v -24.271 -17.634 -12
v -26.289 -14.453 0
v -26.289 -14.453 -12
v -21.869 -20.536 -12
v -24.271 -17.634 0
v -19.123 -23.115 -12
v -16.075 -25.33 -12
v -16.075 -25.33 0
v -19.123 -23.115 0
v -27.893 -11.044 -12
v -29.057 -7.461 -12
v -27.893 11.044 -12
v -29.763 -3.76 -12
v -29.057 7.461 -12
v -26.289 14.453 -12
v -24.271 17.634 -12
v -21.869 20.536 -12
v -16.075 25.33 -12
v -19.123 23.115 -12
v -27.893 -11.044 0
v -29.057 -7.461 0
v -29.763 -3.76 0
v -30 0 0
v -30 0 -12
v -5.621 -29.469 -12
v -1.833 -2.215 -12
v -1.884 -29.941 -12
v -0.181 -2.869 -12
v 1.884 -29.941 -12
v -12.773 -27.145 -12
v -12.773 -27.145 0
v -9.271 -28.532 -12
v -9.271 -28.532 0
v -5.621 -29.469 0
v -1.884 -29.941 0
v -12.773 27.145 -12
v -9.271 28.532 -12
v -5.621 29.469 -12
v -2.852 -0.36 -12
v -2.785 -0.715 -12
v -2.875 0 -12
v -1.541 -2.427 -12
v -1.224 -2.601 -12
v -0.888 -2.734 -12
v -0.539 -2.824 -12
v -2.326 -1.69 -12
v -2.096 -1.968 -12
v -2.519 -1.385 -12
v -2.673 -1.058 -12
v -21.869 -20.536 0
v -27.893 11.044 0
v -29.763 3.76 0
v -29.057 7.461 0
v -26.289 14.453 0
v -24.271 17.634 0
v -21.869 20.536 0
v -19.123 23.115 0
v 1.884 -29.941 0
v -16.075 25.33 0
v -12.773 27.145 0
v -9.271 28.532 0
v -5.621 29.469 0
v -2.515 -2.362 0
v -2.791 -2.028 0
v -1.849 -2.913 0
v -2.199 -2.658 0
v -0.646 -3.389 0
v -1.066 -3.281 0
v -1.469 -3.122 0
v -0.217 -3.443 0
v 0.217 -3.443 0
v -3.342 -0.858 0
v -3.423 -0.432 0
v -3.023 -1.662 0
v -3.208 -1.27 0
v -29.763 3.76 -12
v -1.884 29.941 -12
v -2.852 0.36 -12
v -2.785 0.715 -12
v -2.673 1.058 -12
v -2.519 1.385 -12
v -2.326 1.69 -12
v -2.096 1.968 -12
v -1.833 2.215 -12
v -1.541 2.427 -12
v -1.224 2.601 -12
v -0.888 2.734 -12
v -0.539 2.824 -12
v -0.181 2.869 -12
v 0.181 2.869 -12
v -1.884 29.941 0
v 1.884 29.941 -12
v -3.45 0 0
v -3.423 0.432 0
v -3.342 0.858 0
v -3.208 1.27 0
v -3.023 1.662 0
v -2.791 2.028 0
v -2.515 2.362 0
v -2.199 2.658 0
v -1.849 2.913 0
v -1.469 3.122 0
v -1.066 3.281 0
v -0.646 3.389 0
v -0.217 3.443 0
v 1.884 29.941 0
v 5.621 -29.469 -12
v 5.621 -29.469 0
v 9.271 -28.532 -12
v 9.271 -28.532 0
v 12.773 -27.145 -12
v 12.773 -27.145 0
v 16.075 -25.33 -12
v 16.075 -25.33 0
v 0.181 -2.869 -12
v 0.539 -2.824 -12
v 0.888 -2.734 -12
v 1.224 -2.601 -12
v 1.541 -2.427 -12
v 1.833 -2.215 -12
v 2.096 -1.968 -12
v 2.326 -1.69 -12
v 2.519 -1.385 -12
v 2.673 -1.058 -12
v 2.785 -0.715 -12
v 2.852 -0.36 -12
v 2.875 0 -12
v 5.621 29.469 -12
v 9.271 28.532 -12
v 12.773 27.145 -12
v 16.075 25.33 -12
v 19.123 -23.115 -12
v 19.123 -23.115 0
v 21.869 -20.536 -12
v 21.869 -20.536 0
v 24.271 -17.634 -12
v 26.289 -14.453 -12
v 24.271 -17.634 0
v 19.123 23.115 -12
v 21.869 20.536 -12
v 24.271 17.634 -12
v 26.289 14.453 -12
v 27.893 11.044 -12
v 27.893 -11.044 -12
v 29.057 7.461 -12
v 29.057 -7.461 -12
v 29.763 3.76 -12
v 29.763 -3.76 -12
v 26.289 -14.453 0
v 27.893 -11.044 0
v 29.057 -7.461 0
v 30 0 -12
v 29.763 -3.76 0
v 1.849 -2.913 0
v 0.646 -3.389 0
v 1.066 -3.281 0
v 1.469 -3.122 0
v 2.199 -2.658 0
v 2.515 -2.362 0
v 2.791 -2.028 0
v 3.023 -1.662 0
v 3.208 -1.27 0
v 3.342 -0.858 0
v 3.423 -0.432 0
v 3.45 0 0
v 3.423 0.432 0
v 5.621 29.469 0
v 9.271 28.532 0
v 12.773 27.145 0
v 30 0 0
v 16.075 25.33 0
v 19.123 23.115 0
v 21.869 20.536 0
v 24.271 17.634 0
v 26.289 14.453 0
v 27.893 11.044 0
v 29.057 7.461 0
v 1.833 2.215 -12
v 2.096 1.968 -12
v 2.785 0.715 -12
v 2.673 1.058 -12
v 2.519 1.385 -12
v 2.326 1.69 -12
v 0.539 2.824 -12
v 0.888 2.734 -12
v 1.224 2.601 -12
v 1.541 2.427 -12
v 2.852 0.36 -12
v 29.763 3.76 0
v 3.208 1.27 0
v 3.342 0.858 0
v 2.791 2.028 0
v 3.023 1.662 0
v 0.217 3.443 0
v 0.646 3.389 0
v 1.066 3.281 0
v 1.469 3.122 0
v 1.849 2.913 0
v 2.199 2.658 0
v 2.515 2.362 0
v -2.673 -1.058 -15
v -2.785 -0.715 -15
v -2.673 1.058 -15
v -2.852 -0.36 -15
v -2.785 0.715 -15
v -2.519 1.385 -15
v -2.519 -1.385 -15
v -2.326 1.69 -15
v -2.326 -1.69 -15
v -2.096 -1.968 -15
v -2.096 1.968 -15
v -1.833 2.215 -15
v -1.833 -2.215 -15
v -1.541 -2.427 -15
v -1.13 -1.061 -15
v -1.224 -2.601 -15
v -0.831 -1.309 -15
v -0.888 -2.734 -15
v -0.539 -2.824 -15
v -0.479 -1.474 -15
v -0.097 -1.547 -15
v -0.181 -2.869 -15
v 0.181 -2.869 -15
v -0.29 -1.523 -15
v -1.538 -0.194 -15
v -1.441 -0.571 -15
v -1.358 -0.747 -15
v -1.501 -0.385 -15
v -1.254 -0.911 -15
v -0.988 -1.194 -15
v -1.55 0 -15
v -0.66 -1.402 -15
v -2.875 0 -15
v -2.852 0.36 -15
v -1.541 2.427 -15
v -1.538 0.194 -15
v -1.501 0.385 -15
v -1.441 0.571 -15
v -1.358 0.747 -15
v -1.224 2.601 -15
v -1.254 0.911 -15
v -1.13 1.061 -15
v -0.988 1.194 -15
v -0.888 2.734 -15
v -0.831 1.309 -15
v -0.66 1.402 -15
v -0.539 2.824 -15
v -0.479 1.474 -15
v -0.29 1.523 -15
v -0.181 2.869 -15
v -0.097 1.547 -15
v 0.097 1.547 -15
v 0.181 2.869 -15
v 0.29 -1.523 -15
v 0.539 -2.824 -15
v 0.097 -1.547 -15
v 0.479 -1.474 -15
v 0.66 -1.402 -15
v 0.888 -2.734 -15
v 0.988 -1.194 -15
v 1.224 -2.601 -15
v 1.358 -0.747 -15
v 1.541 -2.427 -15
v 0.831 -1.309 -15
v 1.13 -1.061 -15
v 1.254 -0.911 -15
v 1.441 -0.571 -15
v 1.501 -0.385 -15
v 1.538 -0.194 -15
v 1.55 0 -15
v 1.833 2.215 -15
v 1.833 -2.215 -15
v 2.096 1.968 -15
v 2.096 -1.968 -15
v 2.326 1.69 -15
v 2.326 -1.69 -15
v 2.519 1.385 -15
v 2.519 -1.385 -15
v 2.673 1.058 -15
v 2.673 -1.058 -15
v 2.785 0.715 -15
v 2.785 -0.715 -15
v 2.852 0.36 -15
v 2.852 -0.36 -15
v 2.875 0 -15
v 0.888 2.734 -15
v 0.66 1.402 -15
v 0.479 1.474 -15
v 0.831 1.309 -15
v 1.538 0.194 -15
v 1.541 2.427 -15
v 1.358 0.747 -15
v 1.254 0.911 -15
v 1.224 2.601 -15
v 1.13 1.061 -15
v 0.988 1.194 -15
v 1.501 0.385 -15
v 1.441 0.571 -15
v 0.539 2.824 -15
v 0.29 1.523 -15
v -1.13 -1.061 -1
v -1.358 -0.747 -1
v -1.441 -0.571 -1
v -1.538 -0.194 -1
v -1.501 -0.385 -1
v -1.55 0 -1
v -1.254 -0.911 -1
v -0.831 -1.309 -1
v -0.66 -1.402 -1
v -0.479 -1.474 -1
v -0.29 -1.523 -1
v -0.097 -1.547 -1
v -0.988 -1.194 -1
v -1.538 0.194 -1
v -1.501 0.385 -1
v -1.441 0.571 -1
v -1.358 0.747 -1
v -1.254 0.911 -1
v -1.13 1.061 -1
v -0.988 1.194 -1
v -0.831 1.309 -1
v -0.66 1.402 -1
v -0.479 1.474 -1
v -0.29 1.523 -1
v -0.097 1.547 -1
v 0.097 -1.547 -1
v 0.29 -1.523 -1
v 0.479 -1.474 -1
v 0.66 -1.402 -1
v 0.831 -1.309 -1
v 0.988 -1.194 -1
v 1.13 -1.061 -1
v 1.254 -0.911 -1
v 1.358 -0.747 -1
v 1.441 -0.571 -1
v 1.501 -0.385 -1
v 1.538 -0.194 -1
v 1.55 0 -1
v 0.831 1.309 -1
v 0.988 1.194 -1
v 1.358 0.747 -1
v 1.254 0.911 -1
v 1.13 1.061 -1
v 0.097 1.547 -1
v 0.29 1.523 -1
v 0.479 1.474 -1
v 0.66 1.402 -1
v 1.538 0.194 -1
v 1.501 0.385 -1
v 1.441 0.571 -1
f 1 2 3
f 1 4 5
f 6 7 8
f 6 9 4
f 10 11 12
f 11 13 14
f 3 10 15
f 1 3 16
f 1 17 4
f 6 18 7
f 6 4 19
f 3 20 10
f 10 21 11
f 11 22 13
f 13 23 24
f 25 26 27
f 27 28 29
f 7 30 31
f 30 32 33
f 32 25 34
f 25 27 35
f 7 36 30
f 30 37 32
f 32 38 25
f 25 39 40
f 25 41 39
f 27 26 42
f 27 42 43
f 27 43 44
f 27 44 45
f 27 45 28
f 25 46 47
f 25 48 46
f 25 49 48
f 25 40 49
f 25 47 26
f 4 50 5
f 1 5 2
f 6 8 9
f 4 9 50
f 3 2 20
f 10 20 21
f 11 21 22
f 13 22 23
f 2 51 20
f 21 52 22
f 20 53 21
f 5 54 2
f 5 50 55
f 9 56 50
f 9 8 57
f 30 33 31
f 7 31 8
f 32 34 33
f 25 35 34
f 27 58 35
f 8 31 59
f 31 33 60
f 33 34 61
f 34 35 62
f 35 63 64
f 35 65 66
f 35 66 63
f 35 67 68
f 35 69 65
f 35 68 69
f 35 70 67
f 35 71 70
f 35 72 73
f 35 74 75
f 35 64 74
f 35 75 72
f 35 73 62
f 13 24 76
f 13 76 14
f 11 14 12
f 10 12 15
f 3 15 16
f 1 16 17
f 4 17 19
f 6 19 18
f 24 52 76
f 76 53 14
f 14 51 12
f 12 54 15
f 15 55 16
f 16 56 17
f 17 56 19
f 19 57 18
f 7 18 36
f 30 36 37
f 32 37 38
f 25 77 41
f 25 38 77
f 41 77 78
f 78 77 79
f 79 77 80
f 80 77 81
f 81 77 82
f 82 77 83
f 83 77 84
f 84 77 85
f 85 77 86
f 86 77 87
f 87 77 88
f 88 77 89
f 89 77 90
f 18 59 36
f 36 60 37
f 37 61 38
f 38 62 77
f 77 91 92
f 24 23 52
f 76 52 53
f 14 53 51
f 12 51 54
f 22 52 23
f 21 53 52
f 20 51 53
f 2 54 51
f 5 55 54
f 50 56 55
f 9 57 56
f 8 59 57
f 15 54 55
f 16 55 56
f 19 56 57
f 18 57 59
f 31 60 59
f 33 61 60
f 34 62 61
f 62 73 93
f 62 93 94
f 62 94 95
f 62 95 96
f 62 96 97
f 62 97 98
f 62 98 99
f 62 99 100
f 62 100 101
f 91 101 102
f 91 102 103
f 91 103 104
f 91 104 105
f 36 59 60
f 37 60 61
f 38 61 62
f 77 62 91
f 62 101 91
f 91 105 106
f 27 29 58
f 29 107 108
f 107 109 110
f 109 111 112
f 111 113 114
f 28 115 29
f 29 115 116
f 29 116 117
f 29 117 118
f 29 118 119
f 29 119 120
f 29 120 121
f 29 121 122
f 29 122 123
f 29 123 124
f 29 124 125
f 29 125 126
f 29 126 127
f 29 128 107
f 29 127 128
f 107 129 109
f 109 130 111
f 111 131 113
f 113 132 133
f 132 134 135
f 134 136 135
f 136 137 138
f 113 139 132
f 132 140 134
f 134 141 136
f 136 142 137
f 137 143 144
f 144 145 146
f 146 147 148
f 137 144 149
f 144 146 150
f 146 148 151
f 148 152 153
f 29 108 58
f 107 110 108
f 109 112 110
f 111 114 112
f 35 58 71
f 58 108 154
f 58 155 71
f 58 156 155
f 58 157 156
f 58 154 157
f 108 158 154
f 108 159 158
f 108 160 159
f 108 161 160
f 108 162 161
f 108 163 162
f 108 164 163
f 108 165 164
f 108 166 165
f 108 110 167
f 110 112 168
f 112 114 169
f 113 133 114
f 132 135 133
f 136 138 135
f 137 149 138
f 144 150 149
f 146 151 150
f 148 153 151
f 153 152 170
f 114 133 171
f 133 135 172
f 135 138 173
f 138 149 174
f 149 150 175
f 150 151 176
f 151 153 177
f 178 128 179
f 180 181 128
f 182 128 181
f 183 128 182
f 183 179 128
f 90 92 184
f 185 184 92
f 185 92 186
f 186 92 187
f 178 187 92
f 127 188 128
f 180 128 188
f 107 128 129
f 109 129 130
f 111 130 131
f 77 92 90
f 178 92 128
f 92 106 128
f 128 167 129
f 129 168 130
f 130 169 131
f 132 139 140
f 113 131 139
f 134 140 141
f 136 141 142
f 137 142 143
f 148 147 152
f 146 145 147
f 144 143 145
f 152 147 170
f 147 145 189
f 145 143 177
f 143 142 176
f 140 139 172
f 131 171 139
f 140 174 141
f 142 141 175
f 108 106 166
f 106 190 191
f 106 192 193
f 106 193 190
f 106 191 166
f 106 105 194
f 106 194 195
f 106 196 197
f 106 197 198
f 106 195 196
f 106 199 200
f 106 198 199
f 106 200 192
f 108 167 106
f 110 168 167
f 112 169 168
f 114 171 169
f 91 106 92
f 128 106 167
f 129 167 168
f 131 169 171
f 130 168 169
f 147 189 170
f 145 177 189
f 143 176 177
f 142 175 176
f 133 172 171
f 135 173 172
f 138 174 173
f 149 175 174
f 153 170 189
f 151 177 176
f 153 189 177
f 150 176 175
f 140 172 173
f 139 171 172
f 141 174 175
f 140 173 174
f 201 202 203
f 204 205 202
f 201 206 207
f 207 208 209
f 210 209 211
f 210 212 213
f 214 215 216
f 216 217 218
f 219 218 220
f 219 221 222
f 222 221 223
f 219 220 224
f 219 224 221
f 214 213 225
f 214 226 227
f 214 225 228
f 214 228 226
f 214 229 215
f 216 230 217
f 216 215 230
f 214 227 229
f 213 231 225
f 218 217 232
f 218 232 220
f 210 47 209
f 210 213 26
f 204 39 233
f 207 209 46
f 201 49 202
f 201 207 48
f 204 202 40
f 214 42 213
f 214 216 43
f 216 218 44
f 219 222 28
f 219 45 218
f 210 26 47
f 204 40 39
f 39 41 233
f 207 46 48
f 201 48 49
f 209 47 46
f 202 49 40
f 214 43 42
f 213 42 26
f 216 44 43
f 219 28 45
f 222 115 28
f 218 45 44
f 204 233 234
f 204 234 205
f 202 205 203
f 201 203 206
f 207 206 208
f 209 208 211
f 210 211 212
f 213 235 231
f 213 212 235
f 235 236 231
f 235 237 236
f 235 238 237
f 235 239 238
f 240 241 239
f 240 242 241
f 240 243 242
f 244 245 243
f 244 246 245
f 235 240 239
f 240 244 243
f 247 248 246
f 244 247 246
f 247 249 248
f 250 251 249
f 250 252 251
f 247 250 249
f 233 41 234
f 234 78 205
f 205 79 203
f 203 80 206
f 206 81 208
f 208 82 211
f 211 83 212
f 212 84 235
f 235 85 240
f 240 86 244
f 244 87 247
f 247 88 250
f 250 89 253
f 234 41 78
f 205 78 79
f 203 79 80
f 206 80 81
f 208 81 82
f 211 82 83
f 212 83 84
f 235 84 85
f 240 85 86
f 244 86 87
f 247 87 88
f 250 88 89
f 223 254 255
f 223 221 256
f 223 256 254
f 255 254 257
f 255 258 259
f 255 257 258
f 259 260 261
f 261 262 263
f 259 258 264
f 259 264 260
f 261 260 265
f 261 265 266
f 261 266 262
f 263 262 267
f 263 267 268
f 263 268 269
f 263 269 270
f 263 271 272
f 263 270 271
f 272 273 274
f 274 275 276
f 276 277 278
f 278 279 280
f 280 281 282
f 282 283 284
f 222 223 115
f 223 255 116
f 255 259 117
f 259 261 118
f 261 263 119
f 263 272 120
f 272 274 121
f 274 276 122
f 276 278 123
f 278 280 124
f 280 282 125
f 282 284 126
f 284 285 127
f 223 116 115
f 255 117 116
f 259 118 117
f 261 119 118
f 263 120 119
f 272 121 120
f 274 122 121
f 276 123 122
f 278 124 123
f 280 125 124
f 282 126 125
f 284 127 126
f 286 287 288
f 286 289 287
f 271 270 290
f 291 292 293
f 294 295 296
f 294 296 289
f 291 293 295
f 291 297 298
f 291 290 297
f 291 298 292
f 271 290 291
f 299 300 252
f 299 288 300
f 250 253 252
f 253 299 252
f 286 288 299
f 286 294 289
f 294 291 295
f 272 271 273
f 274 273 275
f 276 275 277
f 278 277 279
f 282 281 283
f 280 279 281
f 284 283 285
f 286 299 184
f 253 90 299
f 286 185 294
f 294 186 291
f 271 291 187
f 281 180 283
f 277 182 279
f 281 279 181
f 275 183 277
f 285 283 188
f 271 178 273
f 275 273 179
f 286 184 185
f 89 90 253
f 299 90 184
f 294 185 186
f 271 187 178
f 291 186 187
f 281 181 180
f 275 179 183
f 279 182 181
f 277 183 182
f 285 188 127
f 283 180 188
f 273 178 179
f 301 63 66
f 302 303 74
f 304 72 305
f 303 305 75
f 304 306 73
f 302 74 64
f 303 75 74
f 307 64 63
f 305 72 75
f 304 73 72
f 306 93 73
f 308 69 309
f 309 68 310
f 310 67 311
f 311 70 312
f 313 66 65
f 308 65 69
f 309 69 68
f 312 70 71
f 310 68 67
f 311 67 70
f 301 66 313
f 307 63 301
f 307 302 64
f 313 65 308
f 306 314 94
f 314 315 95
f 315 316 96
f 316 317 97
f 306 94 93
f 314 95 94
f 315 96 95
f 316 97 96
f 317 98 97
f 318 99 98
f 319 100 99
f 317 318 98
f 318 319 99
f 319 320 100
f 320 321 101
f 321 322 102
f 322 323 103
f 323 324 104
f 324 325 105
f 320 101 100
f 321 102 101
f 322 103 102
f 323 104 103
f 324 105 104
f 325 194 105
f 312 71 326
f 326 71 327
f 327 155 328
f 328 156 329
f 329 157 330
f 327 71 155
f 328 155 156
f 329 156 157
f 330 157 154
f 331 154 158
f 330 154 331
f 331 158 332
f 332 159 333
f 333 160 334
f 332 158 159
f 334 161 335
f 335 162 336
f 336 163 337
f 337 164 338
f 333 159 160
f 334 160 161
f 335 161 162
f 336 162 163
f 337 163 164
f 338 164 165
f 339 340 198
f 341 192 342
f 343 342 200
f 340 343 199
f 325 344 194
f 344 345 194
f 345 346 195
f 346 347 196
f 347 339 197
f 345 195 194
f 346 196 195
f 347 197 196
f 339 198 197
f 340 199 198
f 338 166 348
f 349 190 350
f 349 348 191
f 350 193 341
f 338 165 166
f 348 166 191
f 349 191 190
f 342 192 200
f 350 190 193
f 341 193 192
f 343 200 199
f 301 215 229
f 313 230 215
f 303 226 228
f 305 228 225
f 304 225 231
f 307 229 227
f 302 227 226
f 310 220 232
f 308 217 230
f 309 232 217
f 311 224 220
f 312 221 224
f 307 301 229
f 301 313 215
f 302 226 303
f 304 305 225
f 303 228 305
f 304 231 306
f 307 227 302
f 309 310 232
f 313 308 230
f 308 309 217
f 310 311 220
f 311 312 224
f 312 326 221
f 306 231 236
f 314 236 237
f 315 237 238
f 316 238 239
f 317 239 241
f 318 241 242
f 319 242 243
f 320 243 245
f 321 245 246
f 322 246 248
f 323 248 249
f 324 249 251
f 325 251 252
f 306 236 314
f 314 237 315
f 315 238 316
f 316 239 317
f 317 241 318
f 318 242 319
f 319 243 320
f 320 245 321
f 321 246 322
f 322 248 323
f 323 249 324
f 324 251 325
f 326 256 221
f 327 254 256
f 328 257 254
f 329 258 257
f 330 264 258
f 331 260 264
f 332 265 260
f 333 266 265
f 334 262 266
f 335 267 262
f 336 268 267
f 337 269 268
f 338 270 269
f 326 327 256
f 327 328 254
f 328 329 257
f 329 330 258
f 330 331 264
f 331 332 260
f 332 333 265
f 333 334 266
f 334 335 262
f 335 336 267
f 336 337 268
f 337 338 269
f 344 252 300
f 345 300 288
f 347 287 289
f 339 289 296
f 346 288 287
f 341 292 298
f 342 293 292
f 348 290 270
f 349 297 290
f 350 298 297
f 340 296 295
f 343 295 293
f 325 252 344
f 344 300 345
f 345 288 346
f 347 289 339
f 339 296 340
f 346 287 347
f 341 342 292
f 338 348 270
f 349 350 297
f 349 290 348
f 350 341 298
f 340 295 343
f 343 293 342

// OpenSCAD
$fn = 50;

difference() {
	union() {
		translate(v = [0, 0, -12.0]) {
			cylinder(h = 12, r = 30.0);
		}
		#translate(v = [0, 0, -15.0]) {
			cylinder(h = 15, r = 2.875);
		}
	}
	union() {
		translate(v = [0, 0, 0]) {
			rotate(a = [0, 0, 0]) {
				difference() {
					union() {
						translate(v = [0, 0, -15.0]) {
							cylinder(h = 15, r = 1.25);
						}
						translate(v = [0, 0, -1.0]) {
							cylinder(h = 1.0, r1 = 1.55, r2 = 3.45);
						}
						translate(v = [0, 0, -15.0]) {
							cylinder(h = 15, r = 1.55);
						}
						translate(v = [0, 0, -15.0]) {
							cylinder(h = 15, r = 1.25);
						}
					}
					union();
				}
			}
		}
	}
}
